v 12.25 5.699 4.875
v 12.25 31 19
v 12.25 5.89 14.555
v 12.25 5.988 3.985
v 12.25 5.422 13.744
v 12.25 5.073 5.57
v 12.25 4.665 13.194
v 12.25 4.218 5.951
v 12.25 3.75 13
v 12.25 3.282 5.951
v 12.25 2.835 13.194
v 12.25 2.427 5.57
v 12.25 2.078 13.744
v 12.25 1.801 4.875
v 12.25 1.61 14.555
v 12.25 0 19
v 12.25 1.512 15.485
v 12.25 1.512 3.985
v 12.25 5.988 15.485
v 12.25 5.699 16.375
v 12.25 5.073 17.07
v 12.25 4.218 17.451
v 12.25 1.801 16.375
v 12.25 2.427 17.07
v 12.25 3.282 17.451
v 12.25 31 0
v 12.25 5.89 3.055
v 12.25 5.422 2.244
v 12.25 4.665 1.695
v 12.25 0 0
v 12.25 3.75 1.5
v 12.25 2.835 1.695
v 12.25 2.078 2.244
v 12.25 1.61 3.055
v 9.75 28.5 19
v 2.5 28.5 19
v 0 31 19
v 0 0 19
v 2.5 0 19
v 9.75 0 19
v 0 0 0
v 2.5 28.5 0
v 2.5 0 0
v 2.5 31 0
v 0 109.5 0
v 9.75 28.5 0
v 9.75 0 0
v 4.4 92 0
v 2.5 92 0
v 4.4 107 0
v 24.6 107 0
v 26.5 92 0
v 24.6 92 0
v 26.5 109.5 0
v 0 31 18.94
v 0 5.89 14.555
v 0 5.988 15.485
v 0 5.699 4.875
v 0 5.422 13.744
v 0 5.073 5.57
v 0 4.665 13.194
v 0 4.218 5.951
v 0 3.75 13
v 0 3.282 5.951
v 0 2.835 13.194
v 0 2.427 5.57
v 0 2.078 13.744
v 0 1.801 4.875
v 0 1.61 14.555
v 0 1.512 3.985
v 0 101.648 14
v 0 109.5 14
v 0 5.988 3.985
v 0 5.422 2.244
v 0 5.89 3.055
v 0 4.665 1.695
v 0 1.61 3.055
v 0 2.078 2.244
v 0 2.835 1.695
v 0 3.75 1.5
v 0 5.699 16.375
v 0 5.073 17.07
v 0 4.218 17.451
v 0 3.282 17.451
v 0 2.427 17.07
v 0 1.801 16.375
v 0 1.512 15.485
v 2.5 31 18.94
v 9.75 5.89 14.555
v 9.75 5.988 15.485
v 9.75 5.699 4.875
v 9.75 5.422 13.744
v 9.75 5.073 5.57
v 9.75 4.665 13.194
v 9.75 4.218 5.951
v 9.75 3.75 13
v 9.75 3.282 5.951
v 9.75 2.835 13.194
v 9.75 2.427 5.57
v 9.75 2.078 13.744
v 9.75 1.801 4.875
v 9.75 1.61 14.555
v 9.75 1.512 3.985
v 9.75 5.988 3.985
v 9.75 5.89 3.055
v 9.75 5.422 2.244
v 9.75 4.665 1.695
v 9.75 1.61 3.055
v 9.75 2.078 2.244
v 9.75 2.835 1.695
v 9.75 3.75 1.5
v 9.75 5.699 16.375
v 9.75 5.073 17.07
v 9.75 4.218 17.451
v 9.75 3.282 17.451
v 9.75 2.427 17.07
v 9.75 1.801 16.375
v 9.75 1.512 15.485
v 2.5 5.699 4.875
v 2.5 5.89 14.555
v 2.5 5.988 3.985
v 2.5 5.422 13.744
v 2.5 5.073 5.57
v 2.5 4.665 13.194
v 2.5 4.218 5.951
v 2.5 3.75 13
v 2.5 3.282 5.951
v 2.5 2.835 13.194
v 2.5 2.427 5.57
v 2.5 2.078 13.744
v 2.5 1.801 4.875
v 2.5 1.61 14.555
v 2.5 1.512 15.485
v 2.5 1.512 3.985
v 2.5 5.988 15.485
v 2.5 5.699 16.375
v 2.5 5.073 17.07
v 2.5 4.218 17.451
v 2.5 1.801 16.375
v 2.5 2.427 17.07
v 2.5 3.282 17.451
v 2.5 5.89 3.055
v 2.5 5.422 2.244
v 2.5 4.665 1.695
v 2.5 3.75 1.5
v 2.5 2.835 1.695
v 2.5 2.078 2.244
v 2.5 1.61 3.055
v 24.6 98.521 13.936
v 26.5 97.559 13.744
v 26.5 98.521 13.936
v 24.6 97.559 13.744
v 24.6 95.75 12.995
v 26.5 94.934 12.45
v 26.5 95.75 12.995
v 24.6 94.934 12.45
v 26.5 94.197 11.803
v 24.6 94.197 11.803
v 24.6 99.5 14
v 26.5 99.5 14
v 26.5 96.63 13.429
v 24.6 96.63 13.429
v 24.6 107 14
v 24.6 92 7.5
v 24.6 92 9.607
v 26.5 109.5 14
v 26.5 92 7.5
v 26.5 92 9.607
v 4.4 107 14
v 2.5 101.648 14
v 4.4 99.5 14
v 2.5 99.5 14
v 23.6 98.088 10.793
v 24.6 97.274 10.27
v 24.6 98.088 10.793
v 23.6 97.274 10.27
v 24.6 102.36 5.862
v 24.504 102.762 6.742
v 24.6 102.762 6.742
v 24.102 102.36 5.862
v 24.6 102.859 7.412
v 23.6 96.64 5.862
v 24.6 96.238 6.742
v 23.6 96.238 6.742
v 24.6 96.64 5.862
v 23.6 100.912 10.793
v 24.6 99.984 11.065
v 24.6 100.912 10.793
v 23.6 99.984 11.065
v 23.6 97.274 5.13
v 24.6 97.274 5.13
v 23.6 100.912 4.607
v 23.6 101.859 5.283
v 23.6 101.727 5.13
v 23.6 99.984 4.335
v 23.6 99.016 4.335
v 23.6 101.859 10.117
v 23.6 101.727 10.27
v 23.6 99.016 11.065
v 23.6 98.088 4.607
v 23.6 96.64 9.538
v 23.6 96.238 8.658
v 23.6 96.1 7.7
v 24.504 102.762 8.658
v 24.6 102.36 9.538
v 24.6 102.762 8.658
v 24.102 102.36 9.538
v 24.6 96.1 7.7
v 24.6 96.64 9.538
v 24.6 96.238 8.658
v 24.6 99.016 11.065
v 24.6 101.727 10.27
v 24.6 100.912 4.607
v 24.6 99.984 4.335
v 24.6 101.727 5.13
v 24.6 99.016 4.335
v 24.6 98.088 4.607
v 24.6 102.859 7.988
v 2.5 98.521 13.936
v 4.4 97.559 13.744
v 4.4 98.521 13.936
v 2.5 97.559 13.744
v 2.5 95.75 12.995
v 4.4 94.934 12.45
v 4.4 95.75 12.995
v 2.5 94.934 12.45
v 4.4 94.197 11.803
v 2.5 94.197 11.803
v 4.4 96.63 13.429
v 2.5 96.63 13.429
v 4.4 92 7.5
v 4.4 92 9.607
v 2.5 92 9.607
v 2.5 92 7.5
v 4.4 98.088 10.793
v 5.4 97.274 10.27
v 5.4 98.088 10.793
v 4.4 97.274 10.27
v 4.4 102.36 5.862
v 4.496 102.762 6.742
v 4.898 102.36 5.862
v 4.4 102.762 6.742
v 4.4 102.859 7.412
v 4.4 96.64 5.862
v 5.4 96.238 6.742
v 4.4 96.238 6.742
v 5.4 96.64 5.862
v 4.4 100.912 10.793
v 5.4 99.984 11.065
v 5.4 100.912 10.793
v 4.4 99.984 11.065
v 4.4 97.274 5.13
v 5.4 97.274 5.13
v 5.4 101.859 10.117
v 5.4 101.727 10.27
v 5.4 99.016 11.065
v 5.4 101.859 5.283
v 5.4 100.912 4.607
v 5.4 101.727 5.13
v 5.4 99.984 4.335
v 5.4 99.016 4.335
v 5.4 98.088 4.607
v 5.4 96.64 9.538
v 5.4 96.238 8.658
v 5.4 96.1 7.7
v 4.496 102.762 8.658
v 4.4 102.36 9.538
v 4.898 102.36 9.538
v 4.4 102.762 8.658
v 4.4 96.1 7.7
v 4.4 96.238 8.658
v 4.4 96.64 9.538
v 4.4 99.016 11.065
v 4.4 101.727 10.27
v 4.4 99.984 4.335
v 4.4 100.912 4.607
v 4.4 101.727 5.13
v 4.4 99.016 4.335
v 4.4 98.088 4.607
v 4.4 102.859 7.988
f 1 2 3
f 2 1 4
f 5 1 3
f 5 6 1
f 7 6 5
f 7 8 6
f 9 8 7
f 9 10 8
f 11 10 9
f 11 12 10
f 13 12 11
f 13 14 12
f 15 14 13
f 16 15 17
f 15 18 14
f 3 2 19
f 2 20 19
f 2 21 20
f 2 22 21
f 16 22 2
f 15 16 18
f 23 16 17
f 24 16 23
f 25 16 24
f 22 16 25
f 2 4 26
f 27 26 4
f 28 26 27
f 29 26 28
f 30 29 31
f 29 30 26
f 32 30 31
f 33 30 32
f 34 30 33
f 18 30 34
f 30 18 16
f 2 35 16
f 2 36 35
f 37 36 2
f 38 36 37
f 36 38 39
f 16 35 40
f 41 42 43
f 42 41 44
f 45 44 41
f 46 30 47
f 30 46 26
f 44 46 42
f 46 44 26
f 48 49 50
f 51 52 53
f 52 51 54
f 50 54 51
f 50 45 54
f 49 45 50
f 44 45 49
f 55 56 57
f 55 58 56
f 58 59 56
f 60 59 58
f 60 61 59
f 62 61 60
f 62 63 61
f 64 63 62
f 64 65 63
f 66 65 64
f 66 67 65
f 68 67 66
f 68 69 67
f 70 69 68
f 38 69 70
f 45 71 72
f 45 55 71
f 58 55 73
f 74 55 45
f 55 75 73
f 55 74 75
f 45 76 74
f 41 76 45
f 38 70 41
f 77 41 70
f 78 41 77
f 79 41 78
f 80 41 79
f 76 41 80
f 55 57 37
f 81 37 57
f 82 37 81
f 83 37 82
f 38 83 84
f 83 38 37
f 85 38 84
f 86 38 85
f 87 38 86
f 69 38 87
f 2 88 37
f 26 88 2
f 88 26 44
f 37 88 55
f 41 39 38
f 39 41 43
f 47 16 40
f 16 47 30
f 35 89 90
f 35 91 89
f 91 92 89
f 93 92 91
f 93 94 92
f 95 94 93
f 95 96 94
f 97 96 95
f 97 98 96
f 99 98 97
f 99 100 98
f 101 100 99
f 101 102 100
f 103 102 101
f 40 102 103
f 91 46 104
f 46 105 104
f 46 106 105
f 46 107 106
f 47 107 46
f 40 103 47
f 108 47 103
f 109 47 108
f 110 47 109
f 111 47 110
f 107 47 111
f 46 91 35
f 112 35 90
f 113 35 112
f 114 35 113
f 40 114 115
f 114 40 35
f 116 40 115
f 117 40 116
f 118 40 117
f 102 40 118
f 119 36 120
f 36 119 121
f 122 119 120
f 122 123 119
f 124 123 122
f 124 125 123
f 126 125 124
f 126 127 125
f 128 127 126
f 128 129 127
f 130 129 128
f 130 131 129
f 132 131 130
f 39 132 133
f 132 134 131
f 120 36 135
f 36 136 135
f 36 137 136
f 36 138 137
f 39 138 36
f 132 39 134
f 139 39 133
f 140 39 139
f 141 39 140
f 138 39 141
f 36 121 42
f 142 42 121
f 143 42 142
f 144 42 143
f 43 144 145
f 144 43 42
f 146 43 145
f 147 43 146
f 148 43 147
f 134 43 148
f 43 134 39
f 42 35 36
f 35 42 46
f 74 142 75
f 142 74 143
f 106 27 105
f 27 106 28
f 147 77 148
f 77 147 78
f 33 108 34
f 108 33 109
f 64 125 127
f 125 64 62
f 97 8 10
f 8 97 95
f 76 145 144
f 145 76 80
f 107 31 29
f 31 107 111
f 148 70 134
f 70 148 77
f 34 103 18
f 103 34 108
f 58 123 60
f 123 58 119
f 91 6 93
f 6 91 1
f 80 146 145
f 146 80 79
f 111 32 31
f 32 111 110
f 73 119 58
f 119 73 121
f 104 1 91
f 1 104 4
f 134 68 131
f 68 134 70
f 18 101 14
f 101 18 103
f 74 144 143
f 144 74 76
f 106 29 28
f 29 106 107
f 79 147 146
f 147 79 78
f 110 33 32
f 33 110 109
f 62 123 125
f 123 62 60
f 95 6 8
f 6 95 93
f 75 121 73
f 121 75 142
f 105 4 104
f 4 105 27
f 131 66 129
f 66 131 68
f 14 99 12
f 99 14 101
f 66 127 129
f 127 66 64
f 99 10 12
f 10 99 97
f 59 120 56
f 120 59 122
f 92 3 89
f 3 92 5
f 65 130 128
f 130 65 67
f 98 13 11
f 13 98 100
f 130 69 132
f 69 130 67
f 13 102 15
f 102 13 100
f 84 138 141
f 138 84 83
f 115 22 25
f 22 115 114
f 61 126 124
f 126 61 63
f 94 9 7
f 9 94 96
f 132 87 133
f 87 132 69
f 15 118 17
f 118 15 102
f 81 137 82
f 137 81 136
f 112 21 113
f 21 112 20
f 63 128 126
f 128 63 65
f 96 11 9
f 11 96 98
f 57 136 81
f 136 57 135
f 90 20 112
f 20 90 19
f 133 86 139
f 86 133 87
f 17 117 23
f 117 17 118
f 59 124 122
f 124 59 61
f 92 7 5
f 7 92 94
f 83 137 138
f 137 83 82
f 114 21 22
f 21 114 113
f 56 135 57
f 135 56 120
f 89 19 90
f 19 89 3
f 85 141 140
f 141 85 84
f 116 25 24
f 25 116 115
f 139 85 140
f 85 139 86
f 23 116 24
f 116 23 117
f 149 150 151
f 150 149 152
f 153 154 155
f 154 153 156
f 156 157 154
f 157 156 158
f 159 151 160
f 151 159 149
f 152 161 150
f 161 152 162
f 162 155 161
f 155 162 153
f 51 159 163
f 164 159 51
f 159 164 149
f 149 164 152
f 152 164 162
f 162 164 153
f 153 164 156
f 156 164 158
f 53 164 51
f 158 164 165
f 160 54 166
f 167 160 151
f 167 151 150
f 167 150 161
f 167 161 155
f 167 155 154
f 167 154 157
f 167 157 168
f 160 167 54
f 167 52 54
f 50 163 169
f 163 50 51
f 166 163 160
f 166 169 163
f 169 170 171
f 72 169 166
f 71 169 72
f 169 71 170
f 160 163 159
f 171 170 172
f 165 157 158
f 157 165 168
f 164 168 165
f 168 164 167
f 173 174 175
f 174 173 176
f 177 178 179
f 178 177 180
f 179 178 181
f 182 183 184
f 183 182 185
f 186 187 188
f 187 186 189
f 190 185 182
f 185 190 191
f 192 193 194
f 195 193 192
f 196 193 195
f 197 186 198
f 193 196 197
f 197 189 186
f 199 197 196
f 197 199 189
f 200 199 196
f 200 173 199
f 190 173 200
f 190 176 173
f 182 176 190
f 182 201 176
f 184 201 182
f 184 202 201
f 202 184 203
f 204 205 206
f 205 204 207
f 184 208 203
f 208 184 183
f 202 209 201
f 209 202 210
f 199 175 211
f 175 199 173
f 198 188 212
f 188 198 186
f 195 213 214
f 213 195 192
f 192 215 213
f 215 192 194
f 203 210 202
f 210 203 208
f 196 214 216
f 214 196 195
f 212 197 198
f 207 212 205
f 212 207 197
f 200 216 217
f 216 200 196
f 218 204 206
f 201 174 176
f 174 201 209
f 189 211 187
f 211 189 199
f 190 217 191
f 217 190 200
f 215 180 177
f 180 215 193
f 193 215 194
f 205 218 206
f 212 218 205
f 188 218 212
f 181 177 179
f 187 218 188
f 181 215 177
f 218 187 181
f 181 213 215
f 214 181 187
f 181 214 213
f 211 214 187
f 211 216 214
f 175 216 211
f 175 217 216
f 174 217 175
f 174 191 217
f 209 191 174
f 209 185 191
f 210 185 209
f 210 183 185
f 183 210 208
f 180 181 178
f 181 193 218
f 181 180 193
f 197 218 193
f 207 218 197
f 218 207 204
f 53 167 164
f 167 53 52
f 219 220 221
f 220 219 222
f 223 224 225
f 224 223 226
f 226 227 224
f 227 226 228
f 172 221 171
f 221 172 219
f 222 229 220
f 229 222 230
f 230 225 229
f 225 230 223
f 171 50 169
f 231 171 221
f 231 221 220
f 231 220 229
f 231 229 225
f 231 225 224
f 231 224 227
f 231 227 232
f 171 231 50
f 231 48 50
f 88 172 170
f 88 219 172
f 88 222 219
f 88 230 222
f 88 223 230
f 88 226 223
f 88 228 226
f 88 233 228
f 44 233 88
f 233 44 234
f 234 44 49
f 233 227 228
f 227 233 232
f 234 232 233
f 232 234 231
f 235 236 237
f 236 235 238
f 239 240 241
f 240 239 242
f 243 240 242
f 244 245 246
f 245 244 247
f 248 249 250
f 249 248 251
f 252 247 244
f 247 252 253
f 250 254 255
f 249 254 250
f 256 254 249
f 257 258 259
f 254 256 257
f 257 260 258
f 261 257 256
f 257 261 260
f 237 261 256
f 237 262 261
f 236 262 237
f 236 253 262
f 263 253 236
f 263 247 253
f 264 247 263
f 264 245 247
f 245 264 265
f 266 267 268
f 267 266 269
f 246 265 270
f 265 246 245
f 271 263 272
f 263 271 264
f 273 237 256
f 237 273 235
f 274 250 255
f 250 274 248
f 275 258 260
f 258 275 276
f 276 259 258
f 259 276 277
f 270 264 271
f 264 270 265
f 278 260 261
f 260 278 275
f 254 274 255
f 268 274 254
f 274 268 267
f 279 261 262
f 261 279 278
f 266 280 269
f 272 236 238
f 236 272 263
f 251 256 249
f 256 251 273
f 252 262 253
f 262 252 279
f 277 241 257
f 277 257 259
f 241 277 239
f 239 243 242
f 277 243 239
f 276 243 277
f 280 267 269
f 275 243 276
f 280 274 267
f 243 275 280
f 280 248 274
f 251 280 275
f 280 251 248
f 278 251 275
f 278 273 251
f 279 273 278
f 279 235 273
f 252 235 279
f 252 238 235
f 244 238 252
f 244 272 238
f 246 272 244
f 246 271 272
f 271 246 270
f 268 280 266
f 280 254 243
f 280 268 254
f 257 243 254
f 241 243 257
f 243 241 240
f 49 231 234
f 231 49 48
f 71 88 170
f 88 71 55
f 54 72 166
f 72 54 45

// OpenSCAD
// file: link.scad
include<parameters.scad>;

module notch_profile(with_tolerance=false) {
    polygon([
        [clip_thickness,
         -1.25 - (with_tolerance ? tolerance/2 : 0)],
        [(with_tolerance ? -.1 : 0),
         -.75 - (with_tolerance ? tolerance/2 : 0)],
        [(with_tolerance ? -.1 : 0),
         .75 + (with_tolerance ? tolerance/2 : 0)],
        [clip_thickness,
         1.25 + (with_tolerance ? tolerance/2 : 0)]
    ]);
}

module link_back() {
    union()
    translate([0, 0, outer_height/2])
    for(n=[0, 1])
    mirror([n, 0, 0])
    translate([-outer_width/2, 0, 0])
    union() {
        translate([0, _trim, 0])
        union() {
            difference() {
                translate([0, -outer_height/2, 0])
                rotate([0, 90, 0])
                cylinder(d=outer_height, h=wall_thickness-tolerance/2);

                translate([-.1, -outer_height/2, -outer_height/2])
                cube([wall_thickness+.2, outer_height/2, outer_height]);
            }

            translate([0, -outer_height, -outer_height/2])
            cube([wall_thickness-tolerance/2, outer_height/2, outer_height/2]);

            radius = (outer_height/2);
            translate([0, -(radius*(1+cos(45))), radius*sin(45)])
            rotate([90, 0, 90])
            linear_extrude(height=wall_thickness-tolerance/2)
            polygon([
                [0, 0],
                [radius*(1-sin(45)), radius*(1-sin(45))],
                [radius*cos(45), radius*(1-sin(45))],
                [radius*cos(45), 0]
            ]);
        }

        translate([0, -outer_height/2, -outer_height/2])
        cube([wall_thickness-tolerance/2, outer_height/2, outer_height]);

        // key
        translate([0, -outer_height/2-tolerance, 0])
        rotate([0, 90, 0])
        translate([0, 0, wall_thickness-.1])
        difference() {
            cylinder(d=key_diameter-tolerance, h=key_depth+.1-tolerance);

            translate([key_diameter/2, -key_diameter/2-1, 0])
            rotate([0, 270-key_slope_bottom, 0])
            translate([0, 0,-.9])
            cube([10,10,1]);
        }
    }
}

module link_mid() {
    translate([0, -mid_depth, 0])
    difference() {
        union() {
            translate([0, 0, outer_height/2])
            for(n=[0, 1])
            mirror([n, 0, 0])
            translate([-outer_width/2, 0, -outer_height/2])
            cube([wall_thickness * 2, mid_depth, outer_height]);

            translate([-outer_width/2, 0, 0])
            cube([outer_width, mid_depth, wall_thickness]);
        }

        translate([-outer_width/2-.5, mid_depth/2, outer_height])
        rotate([0, 90, 0])
        linear_extrude(height=outer_width+1)
        notch_profile(true);
    }
}

module link_front() {
    union()
    translate([0, 0, outer_height/2])
    for(n=[0, 1])
    mirror([n, 0, 0])
    translate([-outer_width/2 + wall_thickness, 0, 0])
    difference() {
        union() {
            translate([0, -_trim, 0])
            difference() {
                translate([tolerance/2, outer_height/2, 0])
                rotate([0, 90, 0])
                cylinder(d=outer_height, h=wall_thickness-tolerance/2);

                translate([tolerance-.1, 0, -outer_height/2])
                cube([wall_thickness-tolerance+.2, outer_height/2, outer_height]);
            }

            translate([tolerance/2, 0, -outer_height/2])
            cube([wall_thickness-tolerance/2, outer_height/2-_trim, outer_height]);
        }

        // keyhole
        translate([0, outer_height/2-_trim, 0])
        rotate([0, 90, 0])
        translate([0, 0, -.1])
        cylinder(d=key_diameter+tolerance, h=key_depth+.1+tolerance);
    }
}

module clip() {
    union() {
        for(r=[0, 180])
        rotate([0, 0, r]) {
            translate([outer_width/2-wall_thickness*2.5, 0, clip_thickness])
            rotate([0, 90, 0])
            linear_extrude(height=wall_thickness+.25)
            notch_profile(false);

            translate([outer_width/2-wall_thickness*2-clip_curve_thickness, -1.5, 0])
            cube([clip_curve_thickness, 3, clip_thickness]);

            translate([-clip_curve_thickness/2, -clip_curve_thickness, 0])
            cube([clip_curve_thickness, clip_curve_thickness*2, clip_thickness]);

            cyl_radius=(outer_width-wall_thickness*4+clip_curve_thickness)/4;

            translate([cyl_radius-clip_curve_thickness/2, 1, 0])
            difference() {
                cylinder(r=cyl_radius, h=clip_thickness);

                translate([0, 0, -.1])
                cylinder(r=cyl_radius-clip_curve_thickness, h=clip_thickness+.2);

                translate([-outer_width/2, -outer_width/2, -.1])
                cube([outer_width, outer_width/2, clip_thickness + .2]);
            }
        }
    }
}

module full_link() {
    union() {
        translate([0, -mid_depth, 0])
        link_back();
        link_mid();
        link_front();
    }
}

//translate([0, -mid_depth/2, outer_height-clip_thickness])
//translate([outer_width, 0, 0])
clip();

//full_link();
// file: parameters.scad
tolerance = .2;

outer_width = 24;
outer_height = 15;

mid_depth = 6;

wall_thickness = 2;

key_diameter = 7;
key_depth = 1.1;
key_slope_bottom = 45;

clip_thickness = 2;
clip_curve_thickness = 1.75;

end_screw_hole_diameter = 3.5;

_trim = 1;

$fa = 3;
$fs = 1;
// main file
include<parameters.scad>
use<link.scad>

wall_size = 2.5;

hole_size = 4.5;
hole_inset = 1.5;

base_clamp_gap = 7.25;
base_clamp_height = 21 + hole_size + hole_inset * 2;
base_depth = 19;

arm_height = 15 + 26 + 20 + outer_height;
arm_depth = outer_height-_trim;

union() {
    difference() {
        // base shell
        cube([
            base_clamp_gap + wall_size*2,
            base_clamp_height + wall_size,
            base_depth
        ]);

        // gap
        translate([wall_size, -.1, -.1])
        cube([
            base_clamp_gap,
            base_clamp_height+.1,
            base_depth+.2
        ]);

        // back hole
        translate([-.1, hole_size/2 + hole_inset, hole_size/2 + hole_inset])
        rotate([0, 90, 0])
        cylinder(h=base_clamp_gap + wall_size*2 + .2, d=hole_size);

        // front hole
        translate([-.1, hole_size/2 + hole_inset, base_depth - (hole_size/2 + hole_inset)])
        rotate([0, 90, 0])
        cylinder(h=base_clamp_gap + wall_size*2 + .2, d=hole_size);
    }

    // arm
    translate([0, base_clamp_height + wall_size - .1, 0])
    cube([
        wall_size,
        arm_height + .2,
        arm_depth
    ]);

    // arm slope
    translate([0, base_clamp_height + wall_size - .1-1, 12])
    rotate([-4, 0, 0])
    cube([
        wall_size,
        arm_height + .2,
        arm_depth/2
    ]);

    //cross bar
    translate([0, base_clamp_height + wall_size + arm_height, 0])
    cube([
        wall_size + outer_width,
        wall_size,
        arm_depth
    ]);

    // link
    translate([wall_size+outer_width/2, base_clamp_height + wall_size + arm_height, 0])
    rotate([-90, 0, 180])
    link_back();
}
